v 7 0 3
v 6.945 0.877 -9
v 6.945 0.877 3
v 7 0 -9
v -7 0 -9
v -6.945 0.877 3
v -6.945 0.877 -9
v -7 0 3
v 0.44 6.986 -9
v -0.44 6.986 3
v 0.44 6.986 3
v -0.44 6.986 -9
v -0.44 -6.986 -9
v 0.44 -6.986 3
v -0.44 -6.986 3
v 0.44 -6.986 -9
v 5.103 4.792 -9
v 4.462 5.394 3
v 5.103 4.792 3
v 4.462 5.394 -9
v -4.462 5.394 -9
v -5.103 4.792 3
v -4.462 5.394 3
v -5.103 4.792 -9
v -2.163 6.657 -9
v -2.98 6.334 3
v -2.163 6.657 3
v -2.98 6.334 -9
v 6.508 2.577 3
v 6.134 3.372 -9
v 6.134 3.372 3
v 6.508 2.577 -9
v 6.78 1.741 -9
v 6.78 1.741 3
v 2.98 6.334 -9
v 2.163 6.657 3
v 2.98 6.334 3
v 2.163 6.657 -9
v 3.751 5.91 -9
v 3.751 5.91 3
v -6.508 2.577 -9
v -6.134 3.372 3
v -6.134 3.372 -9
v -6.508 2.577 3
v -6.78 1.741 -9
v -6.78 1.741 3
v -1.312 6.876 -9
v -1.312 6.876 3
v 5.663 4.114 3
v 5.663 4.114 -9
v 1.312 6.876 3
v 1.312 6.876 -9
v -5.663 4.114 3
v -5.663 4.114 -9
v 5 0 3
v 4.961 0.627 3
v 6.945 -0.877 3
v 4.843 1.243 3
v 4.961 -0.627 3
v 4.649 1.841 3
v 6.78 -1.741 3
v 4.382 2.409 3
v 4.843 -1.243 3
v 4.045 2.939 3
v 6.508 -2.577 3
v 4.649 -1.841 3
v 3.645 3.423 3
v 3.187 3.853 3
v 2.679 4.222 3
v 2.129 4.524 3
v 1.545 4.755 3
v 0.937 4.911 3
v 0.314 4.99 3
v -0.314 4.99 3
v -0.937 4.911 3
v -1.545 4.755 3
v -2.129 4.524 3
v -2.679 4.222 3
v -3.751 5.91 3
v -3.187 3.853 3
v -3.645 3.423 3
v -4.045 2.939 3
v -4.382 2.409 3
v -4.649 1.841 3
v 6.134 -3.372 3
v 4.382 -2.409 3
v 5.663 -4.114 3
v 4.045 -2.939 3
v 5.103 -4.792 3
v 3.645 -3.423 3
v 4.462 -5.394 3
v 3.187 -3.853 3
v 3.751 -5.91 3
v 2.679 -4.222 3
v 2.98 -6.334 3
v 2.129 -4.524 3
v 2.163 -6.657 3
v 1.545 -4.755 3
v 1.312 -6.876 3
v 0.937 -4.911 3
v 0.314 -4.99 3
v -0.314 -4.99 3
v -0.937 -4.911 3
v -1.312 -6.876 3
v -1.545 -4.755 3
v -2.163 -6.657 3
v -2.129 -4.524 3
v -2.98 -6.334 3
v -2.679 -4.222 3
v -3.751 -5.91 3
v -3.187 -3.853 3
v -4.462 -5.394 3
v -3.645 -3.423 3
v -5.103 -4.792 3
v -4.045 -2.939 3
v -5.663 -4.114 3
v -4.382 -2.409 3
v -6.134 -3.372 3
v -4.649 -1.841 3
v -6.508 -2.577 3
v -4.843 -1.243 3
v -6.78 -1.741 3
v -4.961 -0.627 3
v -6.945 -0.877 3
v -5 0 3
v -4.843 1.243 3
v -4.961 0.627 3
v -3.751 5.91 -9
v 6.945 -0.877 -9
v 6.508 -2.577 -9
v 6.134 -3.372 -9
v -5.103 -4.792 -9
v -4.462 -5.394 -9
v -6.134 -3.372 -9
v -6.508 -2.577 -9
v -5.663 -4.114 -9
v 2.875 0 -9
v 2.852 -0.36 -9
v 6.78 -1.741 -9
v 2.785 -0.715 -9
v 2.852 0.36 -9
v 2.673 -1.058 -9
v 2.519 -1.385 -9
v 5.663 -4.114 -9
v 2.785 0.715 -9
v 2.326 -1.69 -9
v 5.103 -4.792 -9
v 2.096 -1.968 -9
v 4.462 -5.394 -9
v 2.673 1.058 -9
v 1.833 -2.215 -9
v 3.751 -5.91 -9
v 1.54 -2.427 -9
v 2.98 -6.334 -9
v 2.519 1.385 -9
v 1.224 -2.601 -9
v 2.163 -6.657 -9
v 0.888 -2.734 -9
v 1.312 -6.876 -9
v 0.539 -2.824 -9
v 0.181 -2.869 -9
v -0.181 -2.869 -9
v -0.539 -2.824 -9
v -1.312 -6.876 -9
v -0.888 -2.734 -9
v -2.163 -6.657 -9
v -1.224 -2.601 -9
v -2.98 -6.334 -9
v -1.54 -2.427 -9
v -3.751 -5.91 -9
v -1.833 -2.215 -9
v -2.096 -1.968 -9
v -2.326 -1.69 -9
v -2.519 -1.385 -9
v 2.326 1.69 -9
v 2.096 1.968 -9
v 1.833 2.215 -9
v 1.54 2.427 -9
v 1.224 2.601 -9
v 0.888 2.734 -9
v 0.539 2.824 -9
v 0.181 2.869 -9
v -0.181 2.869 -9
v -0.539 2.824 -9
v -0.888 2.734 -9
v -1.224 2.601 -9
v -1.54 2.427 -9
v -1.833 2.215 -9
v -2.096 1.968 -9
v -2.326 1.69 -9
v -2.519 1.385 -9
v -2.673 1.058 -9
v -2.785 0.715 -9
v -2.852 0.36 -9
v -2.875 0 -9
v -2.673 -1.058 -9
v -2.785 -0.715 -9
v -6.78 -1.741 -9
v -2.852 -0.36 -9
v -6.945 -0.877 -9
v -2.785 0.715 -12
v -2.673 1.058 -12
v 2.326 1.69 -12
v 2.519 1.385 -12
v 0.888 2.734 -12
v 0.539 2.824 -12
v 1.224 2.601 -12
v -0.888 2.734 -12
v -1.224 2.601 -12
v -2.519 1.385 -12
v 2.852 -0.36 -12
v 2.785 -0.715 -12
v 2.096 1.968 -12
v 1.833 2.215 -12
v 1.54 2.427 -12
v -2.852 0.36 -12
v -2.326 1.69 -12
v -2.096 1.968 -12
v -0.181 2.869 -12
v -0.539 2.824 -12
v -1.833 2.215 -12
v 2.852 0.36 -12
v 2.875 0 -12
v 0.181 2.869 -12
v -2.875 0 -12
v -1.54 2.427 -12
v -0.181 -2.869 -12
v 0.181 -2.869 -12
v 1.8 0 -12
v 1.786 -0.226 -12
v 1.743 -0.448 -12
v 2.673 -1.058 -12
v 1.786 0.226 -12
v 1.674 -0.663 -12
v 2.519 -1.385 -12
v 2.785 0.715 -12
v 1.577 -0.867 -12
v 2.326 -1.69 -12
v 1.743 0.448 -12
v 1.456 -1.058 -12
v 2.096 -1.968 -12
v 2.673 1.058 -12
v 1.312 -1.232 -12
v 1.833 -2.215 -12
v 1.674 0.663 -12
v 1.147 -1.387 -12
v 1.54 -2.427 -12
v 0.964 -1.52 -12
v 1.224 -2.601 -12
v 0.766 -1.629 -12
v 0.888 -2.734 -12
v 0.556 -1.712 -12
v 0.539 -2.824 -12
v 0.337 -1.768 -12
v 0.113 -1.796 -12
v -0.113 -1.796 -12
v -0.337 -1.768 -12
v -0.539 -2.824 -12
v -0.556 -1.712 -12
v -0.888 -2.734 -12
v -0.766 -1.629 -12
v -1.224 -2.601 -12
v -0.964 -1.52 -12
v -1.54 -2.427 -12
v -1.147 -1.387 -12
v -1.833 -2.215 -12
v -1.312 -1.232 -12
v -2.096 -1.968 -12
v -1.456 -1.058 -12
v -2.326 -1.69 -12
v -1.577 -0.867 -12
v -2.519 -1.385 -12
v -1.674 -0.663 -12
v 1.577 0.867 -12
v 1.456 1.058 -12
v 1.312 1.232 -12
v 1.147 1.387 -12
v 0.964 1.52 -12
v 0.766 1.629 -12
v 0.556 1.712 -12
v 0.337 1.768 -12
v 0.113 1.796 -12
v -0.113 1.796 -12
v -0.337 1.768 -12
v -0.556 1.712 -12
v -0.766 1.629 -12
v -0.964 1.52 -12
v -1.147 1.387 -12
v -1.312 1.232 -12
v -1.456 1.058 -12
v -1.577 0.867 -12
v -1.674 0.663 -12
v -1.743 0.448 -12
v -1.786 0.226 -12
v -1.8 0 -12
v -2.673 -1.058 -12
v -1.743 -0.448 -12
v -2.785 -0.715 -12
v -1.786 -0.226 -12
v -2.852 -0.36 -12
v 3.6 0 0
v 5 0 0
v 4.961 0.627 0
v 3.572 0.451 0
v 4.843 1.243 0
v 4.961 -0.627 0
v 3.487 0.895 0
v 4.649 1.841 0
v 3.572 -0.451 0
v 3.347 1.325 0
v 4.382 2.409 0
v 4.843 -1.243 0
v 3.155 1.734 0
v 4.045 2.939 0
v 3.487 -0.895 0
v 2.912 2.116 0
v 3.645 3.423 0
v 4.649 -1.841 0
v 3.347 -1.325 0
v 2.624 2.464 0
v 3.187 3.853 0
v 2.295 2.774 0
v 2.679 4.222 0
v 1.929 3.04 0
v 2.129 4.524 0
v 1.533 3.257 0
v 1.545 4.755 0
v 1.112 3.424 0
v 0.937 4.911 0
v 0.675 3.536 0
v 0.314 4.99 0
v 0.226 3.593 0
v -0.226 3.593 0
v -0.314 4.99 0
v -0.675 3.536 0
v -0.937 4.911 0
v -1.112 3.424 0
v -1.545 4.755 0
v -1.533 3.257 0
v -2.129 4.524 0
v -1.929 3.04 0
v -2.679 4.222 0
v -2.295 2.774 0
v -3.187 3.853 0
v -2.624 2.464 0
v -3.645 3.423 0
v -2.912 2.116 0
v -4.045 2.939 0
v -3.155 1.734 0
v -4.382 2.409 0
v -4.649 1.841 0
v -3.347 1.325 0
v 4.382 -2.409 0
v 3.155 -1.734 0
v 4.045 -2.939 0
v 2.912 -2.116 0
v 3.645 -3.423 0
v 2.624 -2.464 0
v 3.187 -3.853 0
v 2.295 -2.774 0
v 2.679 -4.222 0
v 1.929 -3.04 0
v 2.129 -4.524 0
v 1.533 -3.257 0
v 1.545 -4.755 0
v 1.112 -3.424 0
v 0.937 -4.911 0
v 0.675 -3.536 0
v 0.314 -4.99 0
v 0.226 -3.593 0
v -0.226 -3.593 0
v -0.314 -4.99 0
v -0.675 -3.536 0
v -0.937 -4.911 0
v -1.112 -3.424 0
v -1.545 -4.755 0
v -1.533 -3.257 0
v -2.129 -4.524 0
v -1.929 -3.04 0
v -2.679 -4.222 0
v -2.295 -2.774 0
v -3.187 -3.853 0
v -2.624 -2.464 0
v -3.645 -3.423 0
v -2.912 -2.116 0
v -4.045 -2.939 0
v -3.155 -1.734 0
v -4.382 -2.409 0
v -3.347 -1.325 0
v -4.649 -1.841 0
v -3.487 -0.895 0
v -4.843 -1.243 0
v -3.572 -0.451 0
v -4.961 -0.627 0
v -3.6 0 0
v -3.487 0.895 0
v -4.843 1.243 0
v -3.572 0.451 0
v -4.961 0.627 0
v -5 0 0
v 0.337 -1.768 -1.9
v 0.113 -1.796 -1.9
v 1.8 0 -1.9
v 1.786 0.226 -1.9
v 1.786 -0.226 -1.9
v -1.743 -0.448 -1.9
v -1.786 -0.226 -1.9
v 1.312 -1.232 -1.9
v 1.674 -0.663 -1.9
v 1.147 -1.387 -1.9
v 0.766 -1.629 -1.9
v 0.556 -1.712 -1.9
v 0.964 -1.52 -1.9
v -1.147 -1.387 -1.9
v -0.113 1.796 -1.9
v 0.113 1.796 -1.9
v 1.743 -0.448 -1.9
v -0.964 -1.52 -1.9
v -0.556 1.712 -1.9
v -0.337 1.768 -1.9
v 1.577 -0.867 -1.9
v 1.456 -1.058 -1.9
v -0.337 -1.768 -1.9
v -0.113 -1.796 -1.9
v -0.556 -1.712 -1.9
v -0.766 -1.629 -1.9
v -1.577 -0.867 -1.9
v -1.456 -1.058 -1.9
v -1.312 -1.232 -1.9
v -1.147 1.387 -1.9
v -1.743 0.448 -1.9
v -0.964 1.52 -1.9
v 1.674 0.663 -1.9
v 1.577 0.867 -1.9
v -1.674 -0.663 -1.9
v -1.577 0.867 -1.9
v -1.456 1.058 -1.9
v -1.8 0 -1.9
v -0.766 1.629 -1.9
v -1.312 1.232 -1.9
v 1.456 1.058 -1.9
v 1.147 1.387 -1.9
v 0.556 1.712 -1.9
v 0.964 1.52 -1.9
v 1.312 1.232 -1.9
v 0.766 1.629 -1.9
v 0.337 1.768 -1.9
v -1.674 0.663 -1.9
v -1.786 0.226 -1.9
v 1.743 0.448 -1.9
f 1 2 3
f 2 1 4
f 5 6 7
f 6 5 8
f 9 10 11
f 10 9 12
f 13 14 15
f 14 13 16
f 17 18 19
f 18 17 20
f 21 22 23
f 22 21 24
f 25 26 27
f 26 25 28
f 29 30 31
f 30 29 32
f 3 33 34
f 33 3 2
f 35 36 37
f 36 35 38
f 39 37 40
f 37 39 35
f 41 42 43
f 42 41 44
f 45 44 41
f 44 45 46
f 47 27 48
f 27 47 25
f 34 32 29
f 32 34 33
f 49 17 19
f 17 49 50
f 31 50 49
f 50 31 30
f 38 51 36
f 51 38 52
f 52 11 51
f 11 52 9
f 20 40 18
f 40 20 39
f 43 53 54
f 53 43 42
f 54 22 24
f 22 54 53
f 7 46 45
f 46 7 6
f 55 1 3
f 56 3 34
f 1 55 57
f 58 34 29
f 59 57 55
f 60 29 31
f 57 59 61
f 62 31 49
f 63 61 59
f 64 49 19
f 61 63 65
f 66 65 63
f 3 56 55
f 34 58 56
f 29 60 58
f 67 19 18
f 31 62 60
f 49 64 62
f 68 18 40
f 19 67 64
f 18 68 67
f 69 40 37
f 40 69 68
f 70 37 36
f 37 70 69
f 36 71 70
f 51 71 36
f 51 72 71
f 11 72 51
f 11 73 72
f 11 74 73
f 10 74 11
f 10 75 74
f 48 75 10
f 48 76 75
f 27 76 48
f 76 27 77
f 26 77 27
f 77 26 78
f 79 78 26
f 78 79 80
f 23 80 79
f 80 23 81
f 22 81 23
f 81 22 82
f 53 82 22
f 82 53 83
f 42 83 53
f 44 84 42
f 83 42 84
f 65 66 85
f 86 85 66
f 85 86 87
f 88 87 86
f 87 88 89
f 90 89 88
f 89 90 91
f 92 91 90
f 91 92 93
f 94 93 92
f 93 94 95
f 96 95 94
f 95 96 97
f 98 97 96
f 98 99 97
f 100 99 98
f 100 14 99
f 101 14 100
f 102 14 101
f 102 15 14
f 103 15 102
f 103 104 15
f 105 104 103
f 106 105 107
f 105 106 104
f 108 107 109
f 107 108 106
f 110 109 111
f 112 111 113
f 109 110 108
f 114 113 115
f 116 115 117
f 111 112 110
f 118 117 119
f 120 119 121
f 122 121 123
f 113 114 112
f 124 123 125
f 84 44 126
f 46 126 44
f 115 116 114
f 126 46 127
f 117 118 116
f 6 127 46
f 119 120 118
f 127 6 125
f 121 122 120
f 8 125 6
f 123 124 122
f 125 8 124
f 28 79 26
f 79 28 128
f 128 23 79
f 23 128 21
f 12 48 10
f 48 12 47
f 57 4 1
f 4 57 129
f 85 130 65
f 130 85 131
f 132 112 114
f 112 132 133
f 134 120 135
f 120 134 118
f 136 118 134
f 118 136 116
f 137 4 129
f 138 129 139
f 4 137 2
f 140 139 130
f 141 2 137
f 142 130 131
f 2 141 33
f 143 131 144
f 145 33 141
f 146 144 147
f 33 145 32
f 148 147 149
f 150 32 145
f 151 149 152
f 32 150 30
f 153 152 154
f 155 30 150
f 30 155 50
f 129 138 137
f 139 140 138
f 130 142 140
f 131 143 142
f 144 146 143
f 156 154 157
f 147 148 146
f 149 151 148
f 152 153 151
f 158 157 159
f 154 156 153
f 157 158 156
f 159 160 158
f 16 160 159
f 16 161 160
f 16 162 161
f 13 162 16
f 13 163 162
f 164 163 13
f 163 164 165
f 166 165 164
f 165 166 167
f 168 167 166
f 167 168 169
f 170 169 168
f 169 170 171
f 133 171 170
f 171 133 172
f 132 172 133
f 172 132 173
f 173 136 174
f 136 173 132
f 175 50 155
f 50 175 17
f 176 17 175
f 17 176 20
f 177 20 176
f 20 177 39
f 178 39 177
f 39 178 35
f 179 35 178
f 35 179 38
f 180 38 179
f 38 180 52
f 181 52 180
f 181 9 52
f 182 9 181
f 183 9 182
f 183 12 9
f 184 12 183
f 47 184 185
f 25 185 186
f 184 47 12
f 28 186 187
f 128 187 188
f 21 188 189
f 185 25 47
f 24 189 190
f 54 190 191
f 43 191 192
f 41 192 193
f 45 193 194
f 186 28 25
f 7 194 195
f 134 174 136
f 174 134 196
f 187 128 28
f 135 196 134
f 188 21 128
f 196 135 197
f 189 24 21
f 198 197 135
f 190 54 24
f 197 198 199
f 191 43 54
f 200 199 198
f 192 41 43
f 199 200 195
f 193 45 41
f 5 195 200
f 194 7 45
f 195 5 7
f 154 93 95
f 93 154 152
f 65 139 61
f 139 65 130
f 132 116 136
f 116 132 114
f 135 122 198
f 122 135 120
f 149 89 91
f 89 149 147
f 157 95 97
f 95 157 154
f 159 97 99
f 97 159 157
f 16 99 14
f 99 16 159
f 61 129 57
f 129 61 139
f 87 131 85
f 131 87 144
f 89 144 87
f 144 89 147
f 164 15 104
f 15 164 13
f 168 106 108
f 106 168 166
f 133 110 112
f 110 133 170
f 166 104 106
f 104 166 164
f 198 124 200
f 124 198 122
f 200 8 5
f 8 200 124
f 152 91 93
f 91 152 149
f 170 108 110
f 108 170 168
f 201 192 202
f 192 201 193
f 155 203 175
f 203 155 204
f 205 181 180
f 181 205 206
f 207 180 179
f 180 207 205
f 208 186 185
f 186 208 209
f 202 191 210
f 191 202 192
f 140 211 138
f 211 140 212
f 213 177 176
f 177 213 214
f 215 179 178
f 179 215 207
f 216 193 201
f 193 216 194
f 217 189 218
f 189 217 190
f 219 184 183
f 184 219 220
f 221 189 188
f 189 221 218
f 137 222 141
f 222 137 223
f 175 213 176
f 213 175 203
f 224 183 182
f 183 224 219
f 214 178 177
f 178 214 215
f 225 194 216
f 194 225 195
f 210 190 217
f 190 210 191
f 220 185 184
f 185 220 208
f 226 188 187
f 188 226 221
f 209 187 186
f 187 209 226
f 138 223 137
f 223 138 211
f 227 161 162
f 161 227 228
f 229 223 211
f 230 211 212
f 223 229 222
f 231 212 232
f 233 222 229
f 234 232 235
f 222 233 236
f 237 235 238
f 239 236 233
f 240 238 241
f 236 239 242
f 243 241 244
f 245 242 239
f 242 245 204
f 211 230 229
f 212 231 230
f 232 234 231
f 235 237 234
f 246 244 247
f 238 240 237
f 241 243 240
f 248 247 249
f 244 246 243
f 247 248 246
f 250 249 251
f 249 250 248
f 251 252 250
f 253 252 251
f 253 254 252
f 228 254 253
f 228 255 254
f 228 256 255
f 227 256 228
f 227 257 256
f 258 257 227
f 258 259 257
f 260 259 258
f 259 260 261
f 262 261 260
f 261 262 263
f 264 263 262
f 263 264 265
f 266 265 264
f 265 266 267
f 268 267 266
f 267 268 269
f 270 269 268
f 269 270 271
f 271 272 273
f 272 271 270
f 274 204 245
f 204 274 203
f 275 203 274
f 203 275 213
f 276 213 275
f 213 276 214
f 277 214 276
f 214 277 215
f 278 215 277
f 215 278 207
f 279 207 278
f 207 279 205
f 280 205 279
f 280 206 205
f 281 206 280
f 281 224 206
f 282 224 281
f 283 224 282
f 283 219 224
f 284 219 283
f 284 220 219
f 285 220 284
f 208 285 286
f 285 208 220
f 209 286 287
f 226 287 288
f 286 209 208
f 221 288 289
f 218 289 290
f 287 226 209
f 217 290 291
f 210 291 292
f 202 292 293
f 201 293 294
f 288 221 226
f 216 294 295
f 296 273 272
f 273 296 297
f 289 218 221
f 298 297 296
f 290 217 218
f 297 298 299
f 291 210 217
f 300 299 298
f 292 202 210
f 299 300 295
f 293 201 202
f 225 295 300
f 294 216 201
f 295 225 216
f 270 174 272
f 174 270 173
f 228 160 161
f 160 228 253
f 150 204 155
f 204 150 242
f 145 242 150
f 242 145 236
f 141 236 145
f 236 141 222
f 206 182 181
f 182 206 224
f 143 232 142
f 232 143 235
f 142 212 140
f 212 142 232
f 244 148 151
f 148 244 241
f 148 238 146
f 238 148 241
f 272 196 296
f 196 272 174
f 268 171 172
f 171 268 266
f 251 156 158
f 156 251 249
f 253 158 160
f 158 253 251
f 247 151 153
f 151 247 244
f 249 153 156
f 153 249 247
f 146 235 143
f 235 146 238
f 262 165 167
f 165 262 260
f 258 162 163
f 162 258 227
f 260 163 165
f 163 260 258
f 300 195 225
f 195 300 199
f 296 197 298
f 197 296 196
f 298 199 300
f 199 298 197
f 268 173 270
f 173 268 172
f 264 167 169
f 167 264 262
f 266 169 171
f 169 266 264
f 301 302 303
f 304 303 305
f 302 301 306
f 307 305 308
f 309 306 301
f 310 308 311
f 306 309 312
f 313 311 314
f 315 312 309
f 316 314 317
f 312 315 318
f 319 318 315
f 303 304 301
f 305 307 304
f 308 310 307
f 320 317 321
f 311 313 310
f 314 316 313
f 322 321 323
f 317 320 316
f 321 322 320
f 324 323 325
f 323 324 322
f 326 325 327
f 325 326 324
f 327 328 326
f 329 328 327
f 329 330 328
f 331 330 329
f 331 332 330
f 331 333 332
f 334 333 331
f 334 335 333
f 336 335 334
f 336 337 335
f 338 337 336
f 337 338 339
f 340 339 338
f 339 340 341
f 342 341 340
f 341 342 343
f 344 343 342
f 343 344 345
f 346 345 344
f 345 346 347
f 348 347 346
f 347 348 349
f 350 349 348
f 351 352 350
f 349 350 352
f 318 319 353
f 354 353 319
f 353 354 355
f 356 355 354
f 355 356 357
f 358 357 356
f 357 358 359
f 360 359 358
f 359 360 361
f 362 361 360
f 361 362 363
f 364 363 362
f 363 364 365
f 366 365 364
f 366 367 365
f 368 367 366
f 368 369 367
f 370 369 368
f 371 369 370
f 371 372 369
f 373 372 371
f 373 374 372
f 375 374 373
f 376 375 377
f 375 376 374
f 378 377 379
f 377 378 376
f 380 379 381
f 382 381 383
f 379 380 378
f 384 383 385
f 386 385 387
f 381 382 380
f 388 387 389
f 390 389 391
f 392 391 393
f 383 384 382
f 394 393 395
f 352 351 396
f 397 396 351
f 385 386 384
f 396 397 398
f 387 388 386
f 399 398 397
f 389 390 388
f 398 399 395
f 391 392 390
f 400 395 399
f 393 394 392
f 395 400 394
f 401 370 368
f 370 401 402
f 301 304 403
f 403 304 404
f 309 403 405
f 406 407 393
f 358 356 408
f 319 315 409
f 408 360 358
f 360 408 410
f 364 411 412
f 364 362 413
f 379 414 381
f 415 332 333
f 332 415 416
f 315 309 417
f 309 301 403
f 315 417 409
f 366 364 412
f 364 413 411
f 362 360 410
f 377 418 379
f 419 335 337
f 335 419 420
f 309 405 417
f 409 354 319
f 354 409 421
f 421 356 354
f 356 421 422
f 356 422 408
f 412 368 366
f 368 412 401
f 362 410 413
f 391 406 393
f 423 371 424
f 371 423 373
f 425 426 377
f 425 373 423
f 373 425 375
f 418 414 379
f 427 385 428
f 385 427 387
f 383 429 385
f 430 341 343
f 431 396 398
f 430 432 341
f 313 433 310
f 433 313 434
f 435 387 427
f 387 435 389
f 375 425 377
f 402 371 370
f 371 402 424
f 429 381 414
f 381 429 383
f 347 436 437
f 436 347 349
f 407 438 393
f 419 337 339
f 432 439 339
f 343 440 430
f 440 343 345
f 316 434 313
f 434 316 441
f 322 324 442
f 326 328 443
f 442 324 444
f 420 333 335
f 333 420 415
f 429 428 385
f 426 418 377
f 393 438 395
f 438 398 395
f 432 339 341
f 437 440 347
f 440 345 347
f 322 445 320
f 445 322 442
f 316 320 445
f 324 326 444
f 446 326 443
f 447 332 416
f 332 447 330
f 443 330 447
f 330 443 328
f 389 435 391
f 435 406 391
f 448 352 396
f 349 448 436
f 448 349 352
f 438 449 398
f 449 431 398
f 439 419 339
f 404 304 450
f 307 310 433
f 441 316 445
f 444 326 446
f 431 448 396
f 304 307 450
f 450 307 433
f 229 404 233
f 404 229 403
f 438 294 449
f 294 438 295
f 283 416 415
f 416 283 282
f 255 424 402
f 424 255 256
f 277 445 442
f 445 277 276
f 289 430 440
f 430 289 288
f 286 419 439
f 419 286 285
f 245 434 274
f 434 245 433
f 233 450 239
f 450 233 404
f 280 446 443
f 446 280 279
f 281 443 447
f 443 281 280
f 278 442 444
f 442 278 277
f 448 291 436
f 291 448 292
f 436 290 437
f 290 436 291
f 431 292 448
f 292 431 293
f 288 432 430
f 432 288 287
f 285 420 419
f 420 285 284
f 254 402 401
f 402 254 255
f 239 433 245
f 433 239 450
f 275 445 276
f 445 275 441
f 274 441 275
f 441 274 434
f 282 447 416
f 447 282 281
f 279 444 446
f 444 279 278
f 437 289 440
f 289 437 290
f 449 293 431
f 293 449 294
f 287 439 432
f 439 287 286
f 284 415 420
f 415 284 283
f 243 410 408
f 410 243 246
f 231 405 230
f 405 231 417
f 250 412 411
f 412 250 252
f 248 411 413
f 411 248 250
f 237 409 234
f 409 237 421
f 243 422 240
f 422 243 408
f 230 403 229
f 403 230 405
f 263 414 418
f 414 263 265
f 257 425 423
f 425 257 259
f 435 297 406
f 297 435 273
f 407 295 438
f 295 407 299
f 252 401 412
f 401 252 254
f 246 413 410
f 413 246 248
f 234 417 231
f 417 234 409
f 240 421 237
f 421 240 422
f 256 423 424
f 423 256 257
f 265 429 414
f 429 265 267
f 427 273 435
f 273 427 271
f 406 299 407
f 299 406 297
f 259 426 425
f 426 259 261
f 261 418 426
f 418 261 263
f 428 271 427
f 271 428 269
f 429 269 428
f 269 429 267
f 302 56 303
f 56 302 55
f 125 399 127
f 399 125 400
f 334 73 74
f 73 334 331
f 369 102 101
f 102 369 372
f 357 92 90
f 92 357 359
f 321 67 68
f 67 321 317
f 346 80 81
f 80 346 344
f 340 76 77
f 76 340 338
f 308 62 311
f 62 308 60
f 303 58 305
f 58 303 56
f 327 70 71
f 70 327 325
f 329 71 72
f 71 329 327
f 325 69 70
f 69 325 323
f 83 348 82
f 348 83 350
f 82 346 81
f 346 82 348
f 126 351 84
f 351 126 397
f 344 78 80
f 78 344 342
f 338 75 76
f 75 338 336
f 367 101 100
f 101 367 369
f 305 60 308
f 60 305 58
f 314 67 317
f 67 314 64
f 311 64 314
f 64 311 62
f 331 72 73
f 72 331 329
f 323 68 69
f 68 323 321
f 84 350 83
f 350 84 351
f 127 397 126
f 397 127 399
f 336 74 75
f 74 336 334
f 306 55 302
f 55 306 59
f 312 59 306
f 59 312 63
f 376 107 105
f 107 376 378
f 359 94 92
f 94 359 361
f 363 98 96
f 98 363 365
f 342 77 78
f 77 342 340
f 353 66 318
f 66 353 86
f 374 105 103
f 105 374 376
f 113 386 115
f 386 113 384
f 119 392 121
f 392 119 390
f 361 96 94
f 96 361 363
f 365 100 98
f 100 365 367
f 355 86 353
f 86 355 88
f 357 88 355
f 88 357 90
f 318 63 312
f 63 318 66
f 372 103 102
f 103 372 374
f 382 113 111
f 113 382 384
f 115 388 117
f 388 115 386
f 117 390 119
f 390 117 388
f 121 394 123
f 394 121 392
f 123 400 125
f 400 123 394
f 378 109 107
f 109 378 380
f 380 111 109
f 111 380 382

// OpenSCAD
$fn = 50;

difference() {
	union() {
		translate(v = [0, 0, -9.0]) {
			cylinder(h = 12, r = 7.0);
		}
		#translate(v = [0, 0, -12.0]) {
			cylinder(h = 12, r = 2.875);
		}
	}
	union() {
		translate(v = [0, 0, 0]) {
			rotate(a = [0, 0, 0]) {
				difference() {
					union() {
						translate(v = [0, 0, -12.0]) {
							cylinder(h = 12, r = 1.5);
						}
						translate(v = [0, 0, -1.9]) {
							cylinder(h = 1.9, r1 = 1.8, r2 = 3.6);
						}
						translate(v = [0, 0, -12.0]) {
							cylinder(h = 12, r = 1.8);
						}
						translate(v = [0, 0, -12.0]) {
							cylinder(h = 12, r = 1.5);
						}
					}
					union();
				}
			}
		}
		#cylinder(h = 3, r = 5.0);
	}
}
